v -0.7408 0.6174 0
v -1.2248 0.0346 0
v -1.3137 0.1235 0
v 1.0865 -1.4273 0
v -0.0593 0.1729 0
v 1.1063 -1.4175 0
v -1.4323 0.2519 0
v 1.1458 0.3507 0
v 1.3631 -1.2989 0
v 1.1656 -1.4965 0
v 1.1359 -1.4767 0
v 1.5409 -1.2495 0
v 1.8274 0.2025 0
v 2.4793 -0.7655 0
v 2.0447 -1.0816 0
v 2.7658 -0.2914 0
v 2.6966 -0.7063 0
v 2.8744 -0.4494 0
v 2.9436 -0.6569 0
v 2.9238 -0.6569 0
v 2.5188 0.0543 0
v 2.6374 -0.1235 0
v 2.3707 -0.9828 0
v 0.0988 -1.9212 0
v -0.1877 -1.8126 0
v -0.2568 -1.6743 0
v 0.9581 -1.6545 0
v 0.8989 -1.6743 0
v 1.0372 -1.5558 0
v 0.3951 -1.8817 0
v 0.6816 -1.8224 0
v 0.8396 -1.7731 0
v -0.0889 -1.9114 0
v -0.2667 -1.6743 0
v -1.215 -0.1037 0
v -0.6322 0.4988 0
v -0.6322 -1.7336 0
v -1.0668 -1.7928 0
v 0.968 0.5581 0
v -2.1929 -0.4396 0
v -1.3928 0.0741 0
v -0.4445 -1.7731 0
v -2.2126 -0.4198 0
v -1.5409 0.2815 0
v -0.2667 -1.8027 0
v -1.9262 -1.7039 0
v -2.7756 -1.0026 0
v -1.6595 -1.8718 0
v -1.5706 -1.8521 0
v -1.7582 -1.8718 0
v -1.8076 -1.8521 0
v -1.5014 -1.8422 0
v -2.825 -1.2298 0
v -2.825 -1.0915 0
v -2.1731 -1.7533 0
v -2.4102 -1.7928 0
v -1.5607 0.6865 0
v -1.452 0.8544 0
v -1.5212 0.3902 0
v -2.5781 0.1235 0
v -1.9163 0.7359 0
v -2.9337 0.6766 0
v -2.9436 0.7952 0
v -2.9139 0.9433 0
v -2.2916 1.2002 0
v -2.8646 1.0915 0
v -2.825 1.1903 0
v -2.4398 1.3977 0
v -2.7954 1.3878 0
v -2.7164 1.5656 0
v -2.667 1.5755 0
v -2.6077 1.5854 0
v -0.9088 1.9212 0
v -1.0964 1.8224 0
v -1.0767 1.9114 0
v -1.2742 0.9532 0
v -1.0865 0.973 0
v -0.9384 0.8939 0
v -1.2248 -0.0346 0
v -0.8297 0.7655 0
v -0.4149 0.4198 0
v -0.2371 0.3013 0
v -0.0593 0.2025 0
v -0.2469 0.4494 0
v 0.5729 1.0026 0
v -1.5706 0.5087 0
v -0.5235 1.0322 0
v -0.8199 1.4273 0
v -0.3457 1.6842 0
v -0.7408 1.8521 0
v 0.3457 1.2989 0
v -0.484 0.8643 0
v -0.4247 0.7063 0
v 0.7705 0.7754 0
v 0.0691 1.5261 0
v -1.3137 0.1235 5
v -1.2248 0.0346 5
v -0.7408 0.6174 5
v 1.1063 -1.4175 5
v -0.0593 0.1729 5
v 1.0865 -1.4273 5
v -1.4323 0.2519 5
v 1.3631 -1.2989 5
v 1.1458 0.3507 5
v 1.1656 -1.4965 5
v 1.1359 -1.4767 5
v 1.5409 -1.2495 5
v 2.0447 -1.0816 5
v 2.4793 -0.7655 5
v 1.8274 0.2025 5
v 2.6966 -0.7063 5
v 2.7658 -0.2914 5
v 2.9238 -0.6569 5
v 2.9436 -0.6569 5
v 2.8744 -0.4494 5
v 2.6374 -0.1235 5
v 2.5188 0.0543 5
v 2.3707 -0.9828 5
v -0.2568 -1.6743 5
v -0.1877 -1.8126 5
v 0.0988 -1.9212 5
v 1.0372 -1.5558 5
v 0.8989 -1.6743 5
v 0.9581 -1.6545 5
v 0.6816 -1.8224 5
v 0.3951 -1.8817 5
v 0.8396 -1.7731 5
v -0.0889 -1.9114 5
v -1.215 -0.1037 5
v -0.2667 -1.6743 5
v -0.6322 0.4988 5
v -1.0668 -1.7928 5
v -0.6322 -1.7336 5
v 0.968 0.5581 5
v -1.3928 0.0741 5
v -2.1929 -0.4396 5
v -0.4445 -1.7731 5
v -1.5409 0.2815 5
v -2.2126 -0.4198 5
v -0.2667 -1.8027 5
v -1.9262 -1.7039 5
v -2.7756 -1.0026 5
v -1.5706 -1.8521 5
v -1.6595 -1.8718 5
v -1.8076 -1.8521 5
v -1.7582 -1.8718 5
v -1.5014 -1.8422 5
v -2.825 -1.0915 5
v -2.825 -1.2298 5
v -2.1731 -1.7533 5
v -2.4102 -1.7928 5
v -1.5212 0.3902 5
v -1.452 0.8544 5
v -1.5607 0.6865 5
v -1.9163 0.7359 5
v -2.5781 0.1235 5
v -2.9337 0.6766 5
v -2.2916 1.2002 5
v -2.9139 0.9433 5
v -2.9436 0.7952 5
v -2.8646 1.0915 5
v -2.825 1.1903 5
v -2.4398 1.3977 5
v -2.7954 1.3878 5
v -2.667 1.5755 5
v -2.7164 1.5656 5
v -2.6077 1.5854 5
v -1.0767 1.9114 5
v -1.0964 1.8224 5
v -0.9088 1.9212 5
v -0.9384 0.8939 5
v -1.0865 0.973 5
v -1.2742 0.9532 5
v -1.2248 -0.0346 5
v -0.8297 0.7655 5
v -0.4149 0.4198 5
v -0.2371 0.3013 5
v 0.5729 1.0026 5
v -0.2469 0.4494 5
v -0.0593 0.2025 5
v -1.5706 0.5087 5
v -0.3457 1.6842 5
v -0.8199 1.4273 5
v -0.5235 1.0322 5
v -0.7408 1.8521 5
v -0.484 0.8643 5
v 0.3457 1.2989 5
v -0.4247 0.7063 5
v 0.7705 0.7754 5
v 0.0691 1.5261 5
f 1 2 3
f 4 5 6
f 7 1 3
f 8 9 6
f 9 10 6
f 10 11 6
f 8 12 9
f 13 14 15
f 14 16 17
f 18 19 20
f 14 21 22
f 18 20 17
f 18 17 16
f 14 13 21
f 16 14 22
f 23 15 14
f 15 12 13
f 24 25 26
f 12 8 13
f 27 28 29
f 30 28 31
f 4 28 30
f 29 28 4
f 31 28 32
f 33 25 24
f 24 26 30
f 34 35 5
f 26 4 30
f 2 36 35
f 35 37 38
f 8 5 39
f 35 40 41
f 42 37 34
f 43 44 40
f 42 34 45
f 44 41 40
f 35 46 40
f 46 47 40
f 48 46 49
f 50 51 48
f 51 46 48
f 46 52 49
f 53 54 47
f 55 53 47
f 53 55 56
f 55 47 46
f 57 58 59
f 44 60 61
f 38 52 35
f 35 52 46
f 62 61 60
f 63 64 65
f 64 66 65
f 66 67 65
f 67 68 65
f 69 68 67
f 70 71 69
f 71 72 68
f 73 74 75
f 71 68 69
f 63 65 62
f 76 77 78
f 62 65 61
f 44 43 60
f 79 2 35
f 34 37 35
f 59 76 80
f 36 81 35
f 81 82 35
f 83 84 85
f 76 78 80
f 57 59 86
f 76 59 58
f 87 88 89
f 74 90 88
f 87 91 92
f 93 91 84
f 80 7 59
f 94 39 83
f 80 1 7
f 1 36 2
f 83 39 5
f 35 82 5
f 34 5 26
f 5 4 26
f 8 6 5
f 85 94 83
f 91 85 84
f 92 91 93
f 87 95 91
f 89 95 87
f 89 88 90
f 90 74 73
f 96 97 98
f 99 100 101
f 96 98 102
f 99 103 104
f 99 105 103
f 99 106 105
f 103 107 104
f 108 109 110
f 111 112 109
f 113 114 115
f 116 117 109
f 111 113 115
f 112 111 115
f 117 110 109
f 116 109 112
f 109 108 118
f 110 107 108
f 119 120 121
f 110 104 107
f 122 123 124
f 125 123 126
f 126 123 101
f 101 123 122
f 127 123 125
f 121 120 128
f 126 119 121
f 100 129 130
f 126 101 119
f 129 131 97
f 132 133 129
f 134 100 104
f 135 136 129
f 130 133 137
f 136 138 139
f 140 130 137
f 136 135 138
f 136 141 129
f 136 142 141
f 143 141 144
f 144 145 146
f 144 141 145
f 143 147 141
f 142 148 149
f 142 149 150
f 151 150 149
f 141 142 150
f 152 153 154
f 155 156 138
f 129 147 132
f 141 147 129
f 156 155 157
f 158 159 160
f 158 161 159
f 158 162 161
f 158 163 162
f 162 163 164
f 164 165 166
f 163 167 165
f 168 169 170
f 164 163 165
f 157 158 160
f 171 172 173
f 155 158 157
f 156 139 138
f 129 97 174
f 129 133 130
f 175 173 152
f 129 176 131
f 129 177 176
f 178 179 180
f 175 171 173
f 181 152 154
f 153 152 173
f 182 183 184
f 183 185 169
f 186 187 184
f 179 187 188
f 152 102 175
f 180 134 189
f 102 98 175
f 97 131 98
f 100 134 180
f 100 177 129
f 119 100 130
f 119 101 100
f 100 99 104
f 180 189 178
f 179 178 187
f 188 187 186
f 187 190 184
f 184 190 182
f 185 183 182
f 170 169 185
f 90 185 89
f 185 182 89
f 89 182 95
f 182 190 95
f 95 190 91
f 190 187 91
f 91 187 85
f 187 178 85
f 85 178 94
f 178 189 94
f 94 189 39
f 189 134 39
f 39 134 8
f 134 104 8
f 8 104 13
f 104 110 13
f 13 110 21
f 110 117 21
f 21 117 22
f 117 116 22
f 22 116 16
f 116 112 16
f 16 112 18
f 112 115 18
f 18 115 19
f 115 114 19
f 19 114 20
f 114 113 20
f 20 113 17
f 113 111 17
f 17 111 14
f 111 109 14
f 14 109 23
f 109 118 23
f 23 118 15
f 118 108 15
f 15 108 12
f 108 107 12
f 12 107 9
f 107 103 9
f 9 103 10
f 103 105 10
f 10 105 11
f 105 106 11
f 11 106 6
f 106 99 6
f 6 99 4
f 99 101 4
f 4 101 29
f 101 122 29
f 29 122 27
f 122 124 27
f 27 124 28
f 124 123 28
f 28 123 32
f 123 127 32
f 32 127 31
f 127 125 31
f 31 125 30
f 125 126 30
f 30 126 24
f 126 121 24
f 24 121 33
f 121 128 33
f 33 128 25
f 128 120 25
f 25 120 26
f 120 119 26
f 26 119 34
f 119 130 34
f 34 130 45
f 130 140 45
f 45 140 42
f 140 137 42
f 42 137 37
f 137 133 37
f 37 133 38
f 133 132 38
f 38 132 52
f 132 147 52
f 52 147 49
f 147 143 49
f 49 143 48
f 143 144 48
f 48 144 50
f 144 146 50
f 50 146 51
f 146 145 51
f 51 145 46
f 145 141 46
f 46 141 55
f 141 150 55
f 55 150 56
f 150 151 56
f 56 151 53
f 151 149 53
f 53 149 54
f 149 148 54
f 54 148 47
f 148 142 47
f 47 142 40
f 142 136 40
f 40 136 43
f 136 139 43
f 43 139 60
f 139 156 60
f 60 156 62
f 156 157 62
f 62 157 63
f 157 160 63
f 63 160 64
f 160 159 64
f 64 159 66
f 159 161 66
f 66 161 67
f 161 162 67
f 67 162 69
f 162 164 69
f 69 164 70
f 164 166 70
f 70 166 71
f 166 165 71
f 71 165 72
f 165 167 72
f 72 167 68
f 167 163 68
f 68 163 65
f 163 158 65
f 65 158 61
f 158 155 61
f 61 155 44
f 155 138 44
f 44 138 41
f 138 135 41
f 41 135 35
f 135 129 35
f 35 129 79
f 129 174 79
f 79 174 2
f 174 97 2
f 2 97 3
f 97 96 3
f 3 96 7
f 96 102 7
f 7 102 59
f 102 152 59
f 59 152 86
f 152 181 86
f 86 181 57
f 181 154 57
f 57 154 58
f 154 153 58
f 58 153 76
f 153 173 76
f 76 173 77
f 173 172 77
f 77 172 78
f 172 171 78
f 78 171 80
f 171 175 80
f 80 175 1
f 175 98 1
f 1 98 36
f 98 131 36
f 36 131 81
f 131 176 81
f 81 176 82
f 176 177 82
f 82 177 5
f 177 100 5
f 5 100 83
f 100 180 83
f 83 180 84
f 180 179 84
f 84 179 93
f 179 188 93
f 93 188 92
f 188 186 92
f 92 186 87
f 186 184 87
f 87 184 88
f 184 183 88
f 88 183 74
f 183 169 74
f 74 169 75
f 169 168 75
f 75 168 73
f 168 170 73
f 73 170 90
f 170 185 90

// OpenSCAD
// Module names are of the form poly_<inkscape-path-id>().  As a result,
// you can associate a polygon in this OpenSCAD program with the corresponding
// SVG element in the Inkscape document by looking for the XML element with
// the attribute id="inkscape-path-id".

// fudge value is used to ensure that subtracted solids are a tad taller
// in the z dimension than the polygon being subtracted from.  This helps
// keep the resulting .stl file manifold.
fudge = 0.1;

module poly_path4348(h)
{
  scale([25.4/90, -25.4/90, 1]) union()
  {
    linear_extrude(height=h)
      polygon([[-0.945000,6.387500],[-1.575000,6.282500],[-2.240000,6.142500],[-3.780000,6.352500],[-5.320000,6.527500],[-5.565000,6.562500],[-5.880000,6.632500],[-6.230000,6.632500],[-6.405000,6.562500],[-6.825000,6.037500],[-7.700000,6.212500],[-8.540000,6.352500],[-10.010000,4.357500],[-10.010000,3.867500],[-9.835000,3.552500],[-8.820000,2.572500],[-7.770000,1.557500],[-7.840000,1.487500],[-9.135000,-0.437500],[-10.395000,-2.397500],[-10.430000,-2.817500],[-10.325000,-3.342500],[-10.150000,-3.867500],[-10.010000,-4.217500],[-9.905000,-4.917500],[-9.625000,-5.547500],[-9.450000,-5.582500],[-9.240000,-5.617500],[-8.645000,-4.952500],[-8.120000,-4.252500],[-6.790000,-2.607500],[-5.460000,-0.997500],[-4.935000,-0.262500],[-4.305000,0.367500],[-4.340000,0.122500],[-4.340000,-0.122500],[-4.655000,-0.437500],[-5.075000,-0.892500],[-5.390000,-1.382500],[-5.565000,-1.802500],[-5.530000,-2.432500],[-5.145000,-3.027500],[-4.515000,-3.377500],[-3.850000,-3.447500],[-3.325000,-3.167500],[-2.940000,-2.712500],[-2.625000,-2.187500],[-2.240000,-1.767500],[-1.470000,-1.487500],[-0.840000,-1.067500],[-0.210000,-0.612500],[-0.210000,-0.717500],[-0.875000,-1.592500],[-1.505000,-2.502500],[-1.715000,-3.062500],[-1.855000,-3.657500],[-2.905000,-5.057500],[-3.885000,-6.457500],[-3.815000,-6.772500],[-3.220000,-6.807500],[-2.625000,-6.562500],[-1.225000,-5.967500],[0.245000,-5.407500],[1.225000,-4.602500],[2.030000,-3.552500],[2.730000,-2.747500],[3.430000,-1.977500],[4.060000,-1.242500],[6.475000,-0.717500],[8.925000,-0.192500],[9.345000,0.437500],[9.800000,1.032500],[10.185000,1.592500],[10.430000,2.327500],[10.360000,2.327500],[9.555000,2.502500],[8.785000,2.712500],[8.575000,3.132500],[8.400000,3.482500],[7.245000,3.832500],[6.090000,4.217500],[5.460000,4.427500],[4.830000,4.602500],[4.480000,4.952500],[4.130000,5.302500],[4.025000,5.232500],[3.920000,5.022500],[3.850000,5.057500],[3.675000,5.512500],[3.395000,5.862500],[3.185000,5.932500],[2.975000,6.282500],[2.415000,6.457500],[1.400000,6.667500],[0.350000,6.807500],[-0.315000,6.772500],[-0.665000,6.422500],[-0.910000,5.932500],[-0.945000,5.932500],[-0.945000,6.387500]]);
  }
}

poly_path4348(5);
